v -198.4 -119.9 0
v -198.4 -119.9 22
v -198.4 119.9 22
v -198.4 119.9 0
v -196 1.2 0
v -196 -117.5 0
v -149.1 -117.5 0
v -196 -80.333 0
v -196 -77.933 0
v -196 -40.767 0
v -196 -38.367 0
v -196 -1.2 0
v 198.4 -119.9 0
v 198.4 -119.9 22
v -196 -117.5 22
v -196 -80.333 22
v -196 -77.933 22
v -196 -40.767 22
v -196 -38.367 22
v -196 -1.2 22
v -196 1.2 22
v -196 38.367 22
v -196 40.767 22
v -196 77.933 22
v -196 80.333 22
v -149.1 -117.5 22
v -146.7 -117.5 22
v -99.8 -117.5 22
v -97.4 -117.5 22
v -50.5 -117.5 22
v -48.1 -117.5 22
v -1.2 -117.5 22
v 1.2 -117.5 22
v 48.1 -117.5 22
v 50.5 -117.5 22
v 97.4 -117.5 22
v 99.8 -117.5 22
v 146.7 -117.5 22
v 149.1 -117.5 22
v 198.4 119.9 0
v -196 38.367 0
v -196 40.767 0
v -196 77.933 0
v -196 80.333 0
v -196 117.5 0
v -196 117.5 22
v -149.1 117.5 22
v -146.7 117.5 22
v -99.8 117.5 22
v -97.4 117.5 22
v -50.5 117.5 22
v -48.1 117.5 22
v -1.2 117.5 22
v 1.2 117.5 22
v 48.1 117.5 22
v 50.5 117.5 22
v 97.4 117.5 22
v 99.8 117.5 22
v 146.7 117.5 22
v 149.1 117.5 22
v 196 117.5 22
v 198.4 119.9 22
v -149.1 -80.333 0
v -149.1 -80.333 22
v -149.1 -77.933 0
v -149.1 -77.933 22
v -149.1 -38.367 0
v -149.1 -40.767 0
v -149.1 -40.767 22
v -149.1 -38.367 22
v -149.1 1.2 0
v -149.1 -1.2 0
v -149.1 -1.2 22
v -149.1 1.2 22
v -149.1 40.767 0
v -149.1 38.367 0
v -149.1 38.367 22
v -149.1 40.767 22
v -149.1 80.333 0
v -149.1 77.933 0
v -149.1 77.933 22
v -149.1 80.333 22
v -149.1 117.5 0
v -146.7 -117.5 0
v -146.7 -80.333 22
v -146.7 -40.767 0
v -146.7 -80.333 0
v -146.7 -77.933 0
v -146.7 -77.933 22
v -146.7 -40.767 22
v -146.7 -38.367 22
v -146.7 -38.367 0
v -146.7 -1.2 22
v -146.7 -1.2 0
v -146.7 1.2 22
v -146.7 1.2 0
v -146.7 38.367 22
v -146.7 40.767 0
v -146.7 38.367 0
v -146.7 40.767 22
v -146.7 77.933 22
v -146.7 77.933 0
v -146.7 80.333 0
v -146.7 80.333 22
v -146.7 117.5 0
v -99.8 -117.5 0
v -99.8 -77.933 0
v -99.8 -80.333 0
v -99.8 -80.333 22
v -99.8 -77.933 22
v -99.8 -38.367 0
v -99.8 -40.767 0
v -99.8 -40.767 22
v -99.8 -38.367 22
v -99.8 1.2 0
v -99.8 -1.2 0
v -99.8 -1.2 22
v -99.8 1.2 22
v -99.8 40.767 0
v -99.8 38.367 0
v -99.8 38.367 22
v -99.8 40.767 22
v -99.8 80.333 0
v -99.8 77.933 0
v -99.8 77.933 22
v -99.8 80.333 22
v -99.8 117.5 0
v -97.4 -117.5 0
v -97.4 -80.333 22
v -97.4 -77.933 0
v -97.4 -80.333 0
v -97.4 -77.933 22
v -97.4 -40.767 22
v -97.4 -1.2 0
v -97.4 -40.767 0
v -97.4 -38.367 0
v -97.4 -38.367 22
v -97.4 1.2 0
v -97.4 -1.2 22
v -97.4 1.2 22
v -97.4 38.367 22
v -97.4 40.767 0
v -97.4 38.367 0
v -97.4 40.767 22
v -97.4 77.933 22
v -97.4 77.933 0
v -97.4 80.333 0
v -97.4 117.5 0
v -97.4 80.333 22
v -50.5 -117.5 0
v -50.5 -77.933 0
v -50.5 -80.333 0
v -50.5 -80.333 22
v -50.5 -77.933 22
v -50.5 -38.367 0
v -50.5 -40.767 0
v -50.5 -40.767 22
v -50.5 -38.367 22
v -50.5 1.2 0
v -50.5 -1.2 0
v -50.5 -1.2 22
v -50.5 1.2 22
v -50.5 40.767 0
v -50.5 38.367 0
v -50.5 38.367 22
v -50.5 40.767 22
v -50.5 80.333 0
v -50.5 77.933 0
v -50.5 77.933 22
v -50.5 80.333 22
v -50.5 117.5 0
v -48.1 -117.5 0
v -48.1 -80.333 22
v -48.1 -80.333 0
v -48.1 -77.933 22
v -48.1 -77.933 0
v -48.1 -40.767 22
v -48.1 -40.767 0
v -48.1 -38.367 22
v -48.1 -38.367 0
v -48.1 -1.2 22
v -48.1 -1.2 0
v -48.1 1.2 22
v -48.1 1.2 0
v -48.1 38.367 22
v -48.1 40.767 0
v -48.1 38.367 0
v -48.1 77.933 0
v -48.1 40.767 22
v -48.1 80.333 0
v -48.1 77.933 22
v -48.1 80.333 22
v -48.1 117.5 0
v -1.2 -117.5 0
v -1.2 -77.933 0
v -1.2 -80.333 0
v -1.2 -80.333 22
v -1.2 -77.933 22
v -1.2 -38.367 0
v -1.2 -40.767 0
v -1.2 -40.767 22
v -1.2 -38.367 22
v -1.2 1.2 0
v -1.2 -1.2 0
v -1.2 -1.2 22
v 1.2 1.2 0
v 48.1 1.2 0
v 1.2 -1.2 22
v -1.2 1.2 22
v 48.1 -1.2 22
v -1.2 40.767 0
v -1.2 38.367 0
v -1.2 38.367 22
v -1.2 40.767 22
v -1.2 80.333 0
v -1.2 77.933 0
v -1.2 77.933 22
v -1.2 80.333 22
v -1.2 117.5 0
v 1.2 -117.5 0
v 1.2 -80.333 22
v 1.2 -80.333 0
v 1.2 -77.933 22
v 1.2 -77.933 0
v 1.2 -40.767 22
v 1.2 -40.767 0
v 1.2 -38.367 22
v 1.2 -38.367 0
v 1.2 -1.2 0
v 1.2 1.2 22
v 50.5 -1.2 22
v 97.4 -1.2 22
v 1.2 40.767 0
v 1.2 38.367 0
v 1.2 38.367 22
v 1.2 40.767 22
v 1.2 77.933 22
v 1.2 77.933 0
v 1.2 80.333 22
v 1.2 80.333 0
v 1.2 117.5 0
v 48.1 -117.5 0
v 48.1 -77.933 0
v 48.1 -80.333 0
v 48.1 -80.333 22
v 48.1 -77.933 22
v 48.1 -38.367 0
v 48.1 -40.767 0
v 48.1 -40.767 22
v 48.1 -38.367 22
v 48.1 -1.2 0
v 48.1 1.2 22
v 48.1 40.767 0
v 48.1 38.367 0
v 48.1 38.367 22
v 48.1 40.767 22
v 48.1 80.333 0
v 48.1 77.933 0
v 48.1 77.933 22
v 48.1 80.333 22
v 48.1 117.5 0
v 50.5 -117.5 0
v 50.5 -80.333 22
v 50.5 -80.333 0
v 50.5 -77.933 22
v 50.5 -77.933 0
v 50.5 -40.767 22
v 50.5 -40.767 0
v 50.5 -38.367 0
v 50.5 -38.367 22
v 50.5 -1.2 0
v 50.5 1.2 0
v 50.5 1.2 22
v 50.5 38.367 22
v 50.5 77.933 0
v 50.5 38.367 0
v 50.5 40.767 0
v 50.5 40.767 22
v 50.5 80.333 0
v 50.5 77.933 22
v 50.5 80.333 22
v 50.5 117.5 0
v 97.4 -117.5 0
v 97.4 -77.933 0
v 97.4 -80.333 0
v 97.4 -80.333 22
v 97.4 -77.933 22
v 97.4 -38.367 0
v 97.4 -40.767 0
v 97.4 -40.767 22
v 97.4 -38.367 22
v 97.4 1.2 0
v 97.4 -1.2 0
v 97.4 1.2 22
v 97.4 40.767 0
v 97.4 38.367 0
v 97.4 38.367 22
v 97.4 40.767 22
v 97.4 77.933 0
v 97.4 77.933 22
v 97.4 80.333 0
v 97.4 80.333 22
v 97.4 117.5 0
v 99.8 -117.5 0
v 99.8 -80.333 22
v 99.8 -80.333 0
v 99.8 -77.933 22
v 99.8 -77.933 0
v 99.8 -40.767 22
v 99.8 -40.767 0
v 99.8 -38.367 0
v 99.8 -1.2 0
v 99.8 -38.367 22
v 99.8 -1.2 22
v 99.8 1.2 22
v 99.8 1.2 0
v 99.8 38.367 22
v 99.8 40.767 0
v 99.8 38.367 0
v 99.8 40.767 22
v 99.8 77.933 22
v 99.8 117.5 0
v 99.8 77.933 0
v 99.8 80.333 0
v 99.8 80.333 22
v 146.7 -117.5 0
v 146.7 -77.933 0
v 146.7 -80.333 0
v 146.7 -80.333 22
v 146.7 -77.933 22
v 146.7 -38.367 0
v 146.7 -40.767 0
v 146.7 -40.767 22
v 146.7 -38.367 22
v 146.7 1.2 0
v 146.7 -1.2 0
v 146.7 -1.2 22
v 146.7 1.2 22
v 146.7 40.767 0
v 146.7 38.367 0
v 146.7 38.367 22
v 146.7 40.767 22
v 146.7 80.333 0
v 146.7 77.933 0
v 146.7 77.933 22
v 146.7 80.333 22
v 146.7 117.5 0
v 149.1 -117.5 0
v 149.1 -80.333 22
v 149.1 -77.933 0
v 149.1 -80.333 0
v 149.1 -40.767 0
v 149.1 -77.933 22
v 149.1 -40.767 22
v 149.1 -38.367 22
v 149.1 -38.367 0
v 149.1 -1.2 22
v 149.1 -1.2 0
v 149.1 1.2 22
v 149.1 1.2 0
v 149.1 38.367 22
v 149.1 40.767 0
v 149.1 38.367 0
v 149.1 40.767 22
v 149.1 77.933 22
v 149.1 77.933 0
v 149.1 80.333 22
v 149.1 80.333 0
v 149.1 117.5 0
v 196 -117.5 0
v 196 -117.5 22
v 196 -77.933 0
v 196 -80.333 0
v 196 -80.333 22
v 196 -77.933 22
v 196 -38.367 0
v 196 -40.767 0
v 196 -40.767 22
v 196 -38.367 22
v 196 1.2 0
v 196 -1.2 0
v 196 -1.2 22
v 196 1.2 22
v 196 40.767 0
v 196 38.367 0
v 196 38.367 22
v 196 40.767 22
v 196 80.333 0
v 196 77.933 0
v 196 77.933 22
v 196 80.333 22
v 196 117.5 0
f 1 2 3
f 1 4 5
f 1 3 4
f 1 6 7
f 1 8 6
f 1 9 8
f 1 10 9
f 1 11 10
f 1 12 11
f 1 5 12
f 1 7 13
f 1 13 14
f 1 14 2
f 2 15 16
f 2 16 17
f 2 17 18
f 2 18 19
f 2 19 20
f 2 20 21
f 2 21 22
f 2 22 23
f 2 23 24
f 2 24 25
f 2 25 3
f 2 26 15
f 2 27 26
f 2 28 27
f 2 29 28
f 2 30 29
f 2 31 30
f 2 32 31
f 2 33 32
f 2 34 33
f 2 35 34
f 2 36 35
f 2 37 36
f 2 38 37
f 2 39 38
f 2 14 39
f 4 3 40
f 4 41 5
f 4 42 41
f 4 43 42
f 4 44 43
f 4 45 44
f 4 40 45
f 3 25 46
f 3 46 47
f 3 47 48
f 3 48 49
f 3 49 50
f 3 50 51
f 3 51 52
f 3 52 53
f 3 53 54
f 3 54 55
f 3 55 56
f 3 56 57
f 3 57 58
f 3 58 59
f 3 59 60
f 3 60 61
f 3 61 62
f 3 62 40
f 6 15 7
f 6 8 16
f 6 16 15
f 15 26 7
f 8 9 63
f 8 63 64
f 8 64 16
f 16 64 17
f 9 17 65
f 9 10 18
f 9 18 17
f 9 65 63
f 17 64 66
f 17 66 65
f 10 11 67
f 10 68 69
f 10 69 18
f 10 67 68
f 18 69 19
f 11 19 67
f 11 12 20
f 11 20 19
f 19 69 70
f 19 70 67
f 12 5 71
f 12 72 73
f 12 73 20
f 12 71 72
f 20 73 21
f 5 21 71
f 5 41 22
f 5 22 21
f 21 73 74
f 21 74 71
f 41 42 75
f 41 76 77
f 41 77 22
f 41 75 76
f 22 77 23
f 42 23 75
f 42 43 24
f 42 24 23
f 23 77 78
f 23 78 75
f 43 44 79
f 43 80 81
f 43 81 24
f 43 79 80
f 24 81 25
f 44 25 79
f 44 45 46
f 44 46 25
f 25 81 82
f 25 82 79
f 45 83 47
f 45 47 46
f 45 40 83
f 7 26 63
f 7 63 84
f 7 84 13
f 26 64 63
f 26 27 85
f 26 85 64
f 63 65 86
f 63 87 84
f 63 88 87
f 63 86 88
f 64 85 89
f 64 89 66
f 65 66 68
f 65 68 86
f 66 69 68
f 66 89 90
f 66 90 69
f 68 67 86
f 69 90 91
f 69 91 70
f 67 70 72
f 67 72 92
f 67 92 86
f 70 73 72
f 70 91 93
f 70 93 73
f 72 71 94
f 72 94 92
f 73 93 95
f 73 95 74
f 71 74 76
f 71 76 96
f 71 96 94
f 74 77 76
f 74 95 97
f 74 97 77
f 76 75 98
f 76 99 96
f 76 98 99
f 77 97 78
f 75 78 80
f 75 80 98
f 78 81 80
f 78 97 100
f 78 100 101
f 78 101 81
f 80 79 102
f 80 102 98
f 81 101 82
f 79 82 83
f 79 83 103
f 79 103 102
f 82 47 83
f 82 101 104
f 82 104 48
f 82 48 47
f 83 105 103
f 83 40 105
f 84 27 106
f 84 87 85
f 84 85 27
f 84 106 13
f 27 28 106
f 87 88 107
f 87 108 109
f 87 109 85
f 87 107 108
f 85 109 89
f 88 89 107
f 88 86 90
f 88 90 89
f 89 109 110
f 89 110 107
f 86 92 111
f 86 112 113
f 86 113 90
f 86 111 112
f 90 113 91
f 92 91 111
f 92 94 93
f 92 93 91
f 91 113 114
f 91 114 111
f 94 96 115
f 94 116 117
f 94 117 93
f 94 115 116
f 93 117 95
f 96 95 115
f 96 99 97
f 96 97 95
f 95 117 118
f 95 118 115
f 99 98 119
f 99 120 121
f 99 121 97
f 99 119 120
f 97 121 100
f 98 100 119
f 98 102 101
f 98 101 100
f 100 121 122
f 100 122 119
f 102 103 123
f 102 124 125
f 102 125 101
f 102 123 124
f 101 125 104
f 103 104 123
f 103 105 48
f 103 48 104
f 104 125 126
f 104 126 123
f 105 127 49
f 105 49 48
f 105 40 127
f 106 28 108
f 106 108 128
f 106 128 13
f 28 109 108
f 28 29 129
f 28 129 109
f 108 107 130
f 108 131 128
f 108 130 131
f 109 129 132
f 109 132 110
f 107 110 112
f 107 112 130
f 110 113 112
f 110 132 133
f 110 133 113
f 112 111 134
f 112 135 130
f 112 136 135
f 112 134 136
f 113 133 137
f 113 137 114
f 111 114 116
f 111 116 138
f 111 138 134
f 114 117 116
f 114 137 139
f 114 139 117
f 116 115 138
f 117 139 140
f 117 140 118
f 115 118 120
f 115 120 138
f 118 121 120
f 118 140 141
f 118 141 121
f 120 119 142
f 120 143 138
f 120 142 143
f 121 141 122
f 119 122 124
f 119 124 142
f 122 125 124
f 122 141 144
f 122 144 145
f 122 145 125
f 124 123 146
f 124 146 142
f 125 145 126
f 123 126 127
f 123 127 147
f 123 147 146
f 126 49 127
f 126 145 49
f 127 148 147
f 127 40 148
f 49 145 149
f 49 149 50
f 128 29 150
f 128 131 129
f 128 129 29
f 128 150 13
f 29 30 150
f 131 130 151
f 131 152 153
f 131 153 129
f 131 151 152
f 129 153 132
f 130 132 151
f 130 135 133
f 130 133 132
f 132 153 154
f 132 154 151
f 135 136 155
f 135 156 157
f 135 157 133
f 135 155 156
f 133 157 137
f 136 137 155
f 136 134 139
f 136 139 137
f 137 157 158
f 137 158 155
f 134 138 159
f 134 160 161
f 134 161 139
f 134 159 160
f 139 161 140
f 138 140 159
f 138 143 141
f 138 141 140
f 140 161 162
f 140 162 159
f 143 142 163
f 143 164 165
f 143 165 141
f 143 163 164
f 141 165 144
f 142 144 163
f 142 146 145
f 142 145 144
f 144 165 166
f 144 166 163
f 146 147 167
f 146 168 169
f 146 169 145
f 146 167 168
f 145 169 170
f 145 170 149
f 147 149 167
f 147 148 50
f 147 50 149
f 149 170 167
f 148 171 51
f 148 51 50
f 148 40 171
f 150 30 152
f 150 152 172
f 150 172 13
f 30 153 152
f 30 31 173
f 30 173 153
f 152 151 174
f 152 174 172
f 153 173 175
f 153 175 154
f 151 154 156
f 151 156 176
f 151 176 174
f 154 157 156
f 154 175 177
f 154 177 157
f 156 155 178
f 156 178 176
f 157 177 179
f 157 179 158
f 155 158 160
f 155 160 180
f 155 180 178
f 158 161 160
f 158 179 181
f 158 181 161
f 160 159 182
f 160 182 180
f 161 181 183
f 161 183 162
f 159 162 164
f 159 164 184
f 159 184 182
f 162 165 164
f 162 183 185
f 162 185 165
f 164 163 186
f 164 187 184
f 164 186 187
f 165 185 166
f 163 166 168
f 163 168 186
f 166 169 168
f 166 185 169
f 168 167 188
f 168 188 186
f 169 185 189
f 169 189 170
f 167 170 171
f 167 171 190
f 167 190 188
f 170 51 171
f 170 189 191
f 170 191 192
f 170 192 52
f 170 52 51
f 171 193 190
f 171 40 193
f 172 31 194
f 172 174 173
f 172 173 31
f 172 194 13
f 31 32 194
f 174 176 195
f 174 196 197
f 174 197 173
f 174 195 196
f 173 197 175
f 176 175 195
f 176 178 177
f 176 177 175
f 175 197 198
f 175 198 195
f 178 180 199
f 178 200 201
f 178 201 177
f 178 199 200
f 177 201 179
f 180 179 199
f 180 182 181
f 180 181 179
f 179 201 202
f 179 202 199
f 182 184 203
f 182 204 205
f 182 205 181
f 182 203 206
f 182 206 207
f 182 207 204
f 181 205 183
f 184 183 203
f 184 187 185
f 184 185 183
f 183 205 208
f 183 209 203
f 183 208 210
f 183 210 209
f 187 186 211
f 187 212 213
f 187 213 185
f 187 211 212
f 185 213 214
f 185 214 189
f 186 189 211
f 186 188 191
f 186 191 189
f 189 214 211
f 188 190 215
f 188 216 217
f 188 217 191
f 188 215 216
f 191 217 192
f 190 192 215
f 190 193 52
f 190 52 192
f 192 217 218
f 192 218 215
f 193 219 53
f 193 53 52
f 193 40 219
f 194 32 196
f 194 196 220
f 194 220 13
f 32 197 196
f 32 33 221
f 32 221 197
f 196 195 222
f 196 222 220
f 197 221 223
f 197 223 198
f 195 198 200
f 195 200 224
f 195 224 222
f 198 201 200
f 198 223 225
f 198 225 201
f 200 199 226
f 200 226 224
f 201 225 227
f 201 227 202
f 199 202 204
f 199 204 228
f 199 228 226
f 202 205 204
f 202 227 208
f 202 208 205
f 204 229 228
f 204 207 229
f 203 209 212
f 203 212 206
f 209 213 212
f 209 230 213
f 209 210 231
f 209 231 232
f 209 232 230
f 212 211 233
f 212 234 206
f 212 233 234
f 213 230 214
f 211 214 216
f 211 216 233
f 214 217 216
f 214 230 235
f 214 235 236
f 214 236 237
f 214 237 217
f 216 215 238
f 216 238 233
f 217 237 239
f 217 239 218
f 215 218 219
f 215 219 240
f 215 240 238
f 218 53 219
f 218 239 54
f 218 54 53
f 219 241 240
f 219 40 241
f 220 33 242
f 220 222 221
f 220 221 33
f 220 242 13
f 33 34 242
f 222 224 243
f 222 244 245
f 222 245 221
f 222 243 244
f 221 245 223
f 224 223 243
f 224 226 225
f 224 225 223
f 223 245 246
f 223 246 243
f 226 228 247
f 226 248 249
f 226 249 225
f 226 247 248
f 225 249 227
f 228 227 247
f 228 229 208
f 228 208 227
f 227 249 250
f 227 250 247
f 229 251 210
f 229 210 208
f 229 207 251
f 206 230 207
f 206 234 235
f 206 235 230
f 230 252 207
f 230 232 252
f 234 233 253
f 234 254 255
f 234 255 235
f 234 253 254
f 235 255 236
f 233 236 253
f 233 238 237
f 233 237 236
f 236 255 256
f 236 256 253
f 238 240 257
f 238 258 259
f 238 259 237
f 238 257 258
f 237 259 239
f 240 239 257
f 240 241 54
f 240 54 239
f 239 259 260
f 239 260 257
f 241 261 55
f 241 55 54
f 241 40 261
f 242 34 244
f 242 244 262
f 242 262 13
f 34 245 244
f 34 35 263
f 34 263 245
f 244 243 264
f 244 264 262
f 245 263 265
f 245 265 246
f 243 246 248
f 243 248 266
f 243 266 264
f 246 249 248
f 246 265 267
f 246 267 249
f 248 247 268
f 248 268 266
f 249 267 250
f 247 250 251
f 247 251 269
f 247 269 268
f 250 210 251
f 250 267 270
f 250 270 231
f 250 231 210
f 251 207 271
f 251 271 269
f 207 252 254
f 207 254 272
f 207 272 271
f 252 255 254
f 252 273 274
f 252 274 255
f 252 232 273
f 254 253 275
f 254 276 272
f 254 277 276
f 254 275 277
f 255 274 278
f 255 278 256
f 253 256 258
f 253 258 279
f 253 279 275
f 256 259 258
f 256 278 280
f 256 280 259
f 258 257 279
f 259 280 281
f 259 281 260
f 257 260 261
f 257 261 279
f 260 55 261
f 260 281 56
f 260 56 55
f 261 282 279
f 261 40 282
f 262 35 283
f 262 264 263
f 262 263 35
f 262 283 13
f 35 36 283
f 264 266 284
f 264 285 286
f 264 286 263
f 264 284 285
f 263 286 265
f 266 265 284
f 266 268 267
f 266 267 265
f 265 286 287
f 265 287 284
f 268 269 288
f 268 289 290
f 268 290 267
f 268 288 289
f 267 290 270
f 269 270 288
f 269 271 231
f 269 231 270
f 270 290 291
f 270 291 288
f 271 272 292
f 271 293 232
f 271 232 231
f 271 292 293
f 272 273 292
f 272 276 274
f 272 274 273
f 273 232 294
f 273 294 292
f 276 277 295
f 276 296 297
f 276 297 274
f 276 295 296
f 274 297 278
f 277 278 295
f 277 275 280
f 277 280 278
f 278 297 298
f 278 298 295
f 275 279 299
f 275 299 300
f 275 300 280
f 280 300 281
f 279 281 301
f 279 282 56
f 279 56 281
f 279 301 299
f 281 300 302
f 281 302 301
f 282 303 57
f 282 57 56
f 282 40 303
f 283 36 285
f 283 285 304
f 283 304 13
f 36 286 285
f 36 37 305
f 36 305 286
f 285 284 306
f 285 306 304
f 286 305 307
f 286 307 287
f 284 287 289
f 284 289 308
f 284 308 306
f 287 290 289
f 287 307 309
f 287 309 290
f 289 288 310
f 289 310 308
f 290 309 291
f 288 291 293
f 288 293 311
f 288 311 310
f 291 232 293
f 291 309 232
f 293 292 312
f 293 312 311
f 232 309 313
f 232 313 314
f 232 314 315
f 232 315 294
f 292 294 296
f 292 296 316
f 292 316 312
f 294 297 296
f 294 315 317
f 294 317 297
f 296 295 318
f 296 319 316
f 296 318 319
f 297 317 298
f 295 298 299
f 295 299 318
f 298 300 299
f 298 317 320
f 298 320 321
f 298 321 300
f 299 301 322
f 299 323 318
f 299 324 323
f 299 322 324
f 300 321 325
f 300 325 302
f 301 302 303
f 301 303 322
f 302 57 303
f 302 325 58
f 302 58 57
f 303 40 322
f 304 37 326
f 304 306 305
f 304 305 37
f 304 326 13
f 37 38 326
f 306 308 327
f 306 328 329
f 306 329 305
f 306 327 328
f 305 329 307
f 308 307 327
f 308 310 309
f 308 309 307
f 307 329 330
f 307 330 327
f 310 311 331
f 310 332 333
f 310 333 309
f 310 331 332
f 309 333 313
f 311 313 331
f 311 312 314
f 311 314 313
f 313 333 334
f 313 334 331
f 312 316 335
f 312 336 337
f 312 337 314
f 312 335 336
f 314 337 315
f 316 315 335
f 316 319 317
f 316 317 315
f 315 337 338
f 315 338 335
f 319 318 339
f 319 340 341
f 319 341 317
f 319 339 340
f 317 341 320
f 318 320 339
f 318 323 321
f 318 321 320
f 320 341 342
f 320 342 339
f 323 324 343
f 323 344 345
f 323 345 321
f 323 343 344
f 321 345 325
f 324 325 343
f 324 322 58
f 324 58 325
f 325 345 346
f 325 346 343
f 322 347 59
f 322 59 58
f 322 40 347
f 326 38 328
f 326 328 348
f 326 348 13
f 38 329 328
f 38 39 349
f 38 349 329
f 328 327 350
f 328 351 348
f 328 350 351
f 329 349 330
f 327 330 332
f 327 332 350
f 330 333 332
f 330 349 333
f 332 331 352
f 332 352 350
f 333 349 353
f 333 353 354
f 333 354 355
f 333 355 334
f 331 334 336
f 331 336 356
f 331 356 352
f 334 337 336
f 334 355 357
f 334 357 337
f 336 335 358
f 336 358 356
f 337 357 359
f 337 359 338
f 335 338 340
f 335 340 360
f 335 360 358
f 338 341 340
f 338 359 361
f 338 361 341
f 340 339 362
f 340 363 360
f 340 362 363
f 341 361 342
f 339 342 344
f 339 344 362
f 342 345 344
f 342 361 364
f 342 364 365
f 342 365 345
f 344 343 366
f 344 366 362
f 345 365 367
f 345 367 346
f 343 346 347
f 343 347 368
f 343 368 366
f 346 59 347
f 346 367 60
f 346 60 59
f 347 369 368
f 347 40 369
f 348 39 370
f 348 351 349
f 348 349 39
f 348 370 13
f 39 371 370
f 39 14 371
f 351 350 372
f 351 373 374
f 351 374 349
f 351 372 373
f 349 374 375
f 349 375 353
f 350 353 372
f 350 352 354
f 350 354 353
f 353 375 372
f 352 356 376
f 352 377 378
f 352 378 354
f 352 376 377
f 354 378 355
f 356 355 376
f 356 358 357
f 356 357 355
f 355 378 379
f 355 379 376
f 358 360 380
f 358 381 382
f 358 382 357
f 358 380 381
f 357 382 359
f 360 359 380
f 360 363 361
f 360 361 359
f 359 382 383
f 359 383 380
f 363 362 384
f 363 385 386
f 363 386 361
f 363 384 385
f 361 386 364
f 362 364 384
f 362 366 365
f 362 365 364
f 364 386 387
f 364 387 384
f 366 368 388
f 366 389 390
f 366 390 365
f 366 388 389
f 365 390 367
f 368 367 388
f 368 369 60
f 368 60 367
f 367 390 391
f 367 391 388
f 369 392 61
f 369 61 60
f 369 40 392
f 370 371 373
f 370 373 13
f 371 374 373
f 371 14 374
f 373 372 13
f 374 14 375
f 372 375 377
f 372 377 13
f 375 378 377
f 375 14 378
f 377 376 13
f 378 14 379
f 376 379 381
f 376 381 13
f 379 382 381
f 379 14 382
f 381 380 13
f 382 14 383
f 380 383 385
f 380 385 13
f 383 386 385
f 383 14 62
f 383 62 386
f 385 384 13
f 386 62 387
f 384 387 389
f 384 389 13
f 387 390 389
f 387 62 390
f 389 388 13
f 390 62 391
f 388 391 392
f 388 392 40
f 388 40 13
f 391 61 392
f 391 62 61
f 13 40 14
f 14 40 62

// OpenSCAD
// Start: lazy_union
default_5_default_5();
// End: lazy_union

// Modules.

// 'PartMaterial undef-default - default 5.0'
module default_5_default_5() {
  // 'None : _combine_solids_and_holes'
  union() {
    // '_combine_solids_and_holes'
    difference() {
      // 'insert : _combine_solids_and_holes'
      union() {
        // 'box'
        multmatrix(m=[[1.0, 0.0, 0.0, -198.4], [0.0, 1.0, 0.0, -119.9], [0.0, 0.0, 1.0, 0.0], [0.0, 0.0, 0.0, 1.0]]) {
          // 'box : _combine_solids_and_holes'
          union() {
            // 'box'
            cube(size=[396.8, 239.8, 22.0]);
          }
        }
      }
      // 'insert'
      multmatrix(m=[[1.0, 0.0, 0.0, -196.0], [0.0, 1.0, 0.0, 80.33333333333334], [0.0, 0.0, 1.0, -0.01], [0.0, 0.0, 0.0, 1.0]]) {
        // "('hole', 0, 0) : _combine_solids_and_holes"
        union() {
          // ('hole', 0, 0)
          cube(size=[46.9, 37.166666666666664, 22.020000000000003]);
        }
      }
      // 'insert'
      multmatrix(m=[[1.0, 0.0, 0.0, -196.0], [0.0, 1.0, 0.0, 40.76666666666667], [0.0, 0.0, 1.0, -0.01], [0.0, 0.0, 0.0, 1.0]]) {
        // "('hole', 0, 1) : _combine_solids_and_holes"
        union() {
          // ('hole', 0, 1)
          cube(size=[46.9, 37.166666666666664, 22.020000000000003]);
        }
      }
      // 'insert'
      multmatrix(m=[[1.0, 0.0, 0.0, -196.0], [0.0, 1.0, 0.0, 1.20000000000001], [0.0, 0.0, 1.0, -0.01], [0.0, 0.0, 0.0, 1.0]]) {
        // "('hole', 0, 2) : _combine_solids_and_holes"
        union() {
          // ('hole', 0, 2)
          cube(size=[46.9, 37.166666666666664, 22.020000000000003]);
        }
      }
      // 'insert'
      multmatrix(m=[[1.0, 0.0, 0.0, -196.0], [0.0, 1.0, 0.0, -38.36666666666665], [0.0, 0.0, 1.0, -0.01], [0.0, 0.0, 0.0, 1.0]]) {
        // "('hole', 0, 3) : _combine_solids_and_holes"
        union() {
          // ('hole', 0, 3)
          cube(size=[46.9, 37.166666666666664, 22.020000000000003]);
        }
      }
      // 'insert'
      multmatrix(m=[[1.0, 0.0, 0.0, -196.0], [0.0, 1.0, 0.0, -77.93333333333331], [0.0, 0.0, 1.0, -0.01], [0.0, 0.0, 0.0, 1.0]]) {
        // "('hole', 0, 4) : _combine_solids_and_holes"
        union() {
          // ('hole', 0, 4)
          cube(size=[46.9, 37.166666666666664, 22.020000000000003]);
        }
      }
      // 'insert'
      multmatrix(m=[[1.0, 0.0, 0.0, -196.0], [0.0, 1.0, 0.0, -117.49999999999997], [0.0, 0.0, 1.0, -0.01], [0.0, 0.0, 0.0, 1.0]]) {
        // "('hole', 0, 5) : _combine_solids_and_holes"
        union() {
          // ('hole', 0, 5)
          cube(size=[46.9, 37.166666666666664, 22.020000000000003]);
        }
      }
      // 'insert'
      multmatrix(m=[[1.0, 0.0, 0.0, -146.70000000000002], [0.0, 1.0, 0.0, 80.33333333333334], [0.0, 0.0, 1.0, -0.01], [0.0, 0.0, 0.0, 1.0]]) {
        // "('hole', 1, 0) : _combine_solids_and_holes"
        union() {
          // ('hole', 1, 0)
          cube(size=[46.9, 37.166666666666664, 22.020000000000003]);
        }
      }
      // 'insert'
      multmatrix(m=[[1.0, 0.0, 0.0, -146.70000000000002], [0.0, 1.0, 0.0, 40.76666666666667], [0.0, 0.0, 1.0, -0.01], [0.0, 0.0, 0.0, 1.0]]) {
        // "('hole', 1, 1) : _combine_solids_and_holes"
        union() {
          // ('hole', 1, 1)
          cube(size=[46.9, 37.166666666666664, 22.020000000000003]);
        }
      }
      // 'insert'
      multmatrix(m=[[1.0, 0.0, 0.0, -146.70000000000002], [0.0, 1.0, 0.0, 1.20000000000001], [0.0, 0.0, 1.0, -0.01], [0.0, 0.0, 0.0, 1.0]]) {
        // "('hole', 1, 2) : _combine_solids_and_holes"
        union() {
          // ('hole', 1, 2)
          cube(size=[46.9, 37.166666666666664, 22.020000000000003]);
        }
      }
      // 'insert'
      multmatrix(m=[[1.0, 0.0, 0.0, -146.70000000000002], [0.0, 1.0, 0.0, -38.36666666666665], [0.0, 0.0, 1.0, -0.01], [0.0, 0.0, 0.0, 1.0]]) {
        // "('hole', 1, 3) : _combine_solids_and_holes"
        union() {
          // ('hole', 1, 3)
          cube(size=[46.9, 37.166666666666664, 22.020000000000003]);
        }
      }
      // 'insert'
      multmatrix(m=[[1.0, 0.0, 0.0, -146.70000000000002], [0.0, 1.0, 0.0, -77.93333333333331], [0.0, 0.0, 1.0, -0.01], [0.0, 0.0, 0.0, 1.0]]) {
        // "('hole', 1, 4) : _combine_solids_and_holes"
        union() {
          // ('hole', 1, 4)
          cube(size=[46.9, 37.166666666666664, 22.020000000000003]);
        }
      }
      // 'insert'
      multmatrix(m=[[1.0, 0.0, 0.0, -146.70000000000002], [0.0, 1.0, 0.0, -117.49999999999997], [0.0, 0.0, 1.0, -0.01], [0.0, 0.0, 0.0, 1.0]]) {
        // "('hole', 1, 5) : _combine_solids_and_holes"
        union() {
          // ('hole', 1, 5)
          cube(size=[46.9, 37.166666666666664, 22.020000000000003]);
        }
      }
      // 'insert'
      multmatrix(m=[[1.0, 0.0, 0.0, -97.4], [0.0, 1.0, 0.0, 80.33333333333334], [0.0, 0.0, 1.0, -0.01], [0.0, 0.0, 0.0, 1.0]]) {
        // "('hole', 2, 0) : _combine_solids_and_holes"
        union() {
          // ('hole', 2, 0)
          cube(size=[46.9, 37.166666666666664, 22.020000000000003]);
        }
      }
      // 'insert'
      multmatrix(m=[[1.0, 0.0, 0.0, -97.4], [0.0, 1.0, 0.0, 40.76666666666667], [0.0, 0.0, 1.0, -0.01], [0.0, 0.0, 0.0, 1.0]]) {
        // "('hole', 2, 1) : _combine_solids_and_holes"
        union() {
          // ('hole', 2, 1)
          cube(size=[46.9, 37.166666666666664, 22.020000000000003]);
        }
      }
      // 'insert'
      multmatrix(m=[[1.0, 0.0, 0.0, -97.4], [0.0, 1.0, 0.0, 1.20000000000001], [0.0, 0.0, 1.0, -0.01], [0.0, 0.0, 0.0, 1.0]]) {
        // "('hole', 2, 2) : _combine_solids_and_holes"
        union() {
          // ('hole', 2, 2)
          cube(size=[46.9, 37.166666666666664, 22.020000000000003]);
        }
      }
      // 'insert'
      multmatrix(m=[[1.0, 0.0, 0.0, -97.4], [0.0, 1.0, 0.0, -38.36666666666665], [0.0, 0.0, 1.0, -0.01], [0.0, 0.0, 0.0, 1.0]]) {
        // "('hole', 2, 3) : _combine_solids_and_holes"
        union() {
          // ('hole', 2, 3)
          cube(size=[46.9, 37.166666666666664, 22.020000000000003]);
        }
      }
      // 'insert'
      multmatrix(m=[[1.0, 0.0, 0.0, -97.4], [0.0, 1.0, 0.0, -77.93333333333331], [0.0, 0.0, 1.0, -0.01], [0.0, 0.0, 0.0, 1.0]]) {
        // "('hole', 2, 4) : _combine_solids_and_holes"
        union() {
          // ('hole', 2, 4)
          cube(size=[46.9, 37.166666666666664, 22.020000000000003]);
        }
      }
      // 'insert'
      multmatrix(m=[[1.0, 0.0, 0.0, -97.4], [0.0, 1.0, 0.0, -117.49999999999997], [0.0, 0.0, 1.0, -0.01], [0.0, 0.0, 0.0, 1.0]]) {
        // "('hole', 2, 5) : _combine_solids_and_holes"
        union() {
          // ('hole', 2, 5)
          cube(size=[46.9, 37.166666666666664, 22.020000000000003]);
        }
      }
      // 'insert'
      multmatrix(m=[[1.0, 0.0, 0.0, -48.099999999999994], [0.0, 1.0, 0.0, 80.33333333333334], [0.0, 0.0, 1.0, -0.01], [0.0, 0.0, 0.0, 1.0]]) {
        // "('hole', 3, 0) : _combine_solids_and_holes"
        union() {
          // ('hole', 3, 0)
          cube(size=[46.9, 37.166666666666664, 22.020000000000003]);
        }
      }
      // 'insert'
      multmatrix(m=[[1.0, 0.0, 0.0, -48.099999999999994], [0.0, 1.0, 0.0, 40.76666666666667], [0.0, 0.0, 1.0, -0.01], [0.0, 0.0, 0.0, 1.0]]) {
        // "('hole', 3, 1) : _combine_solids_and_holes"
        union() {
          // ('hole', 3, 1)
          cube(size=[46.9, 37.166666666666664, 22.020000000000003]);
        }
      }
      // 'insert'
      multmatrix(m=[[1.0, 0.0, 0.0, -48.099999999999994], [0.0, 1.0, 0.0, 1.20000000000001], [0.0, 0.0, 1.0, -0.01], [0.0, 0.0, 0.0, 1.0]]) {
        // "('hole', 3, 2) : _combine_solids_and_holes"
        union() {
          // ('hole', 3, 2)
          cube(size=[46.9, 37.166666666666664, 22.020000000000003]);
        }
      }
      // 'insert'
      multmatrix(m=[[1.0, 0.0, 0.0, -48.099999999999994], [0.0, 1.0, 0.0, -38.36666666666665], [0.0, 0.0, 1.0, -0.01], [0.0, 0.0, 0.0, 1.0]]) {
        // "('hole', 3, 3) : _combine_solids_and_holes"
        union() {
          // ('hole', 3, 3)
          cube(size=[46.9, 37.166666666666664, 22.020000000000003]);
        }
      }
      // 'insert'
      multmatrix(m=[[1.0, 0.0, 0.0, -48.099999999999994], [0.0, 1.0, 0.0, -77.93333333333331], [0.0, 0.0, 1.0, -0.01], [0.0, 0.0, 0.0, 1.0]]) {
        // "('hole', 3, 4) : _combine_solids_and_holes"
        union() {
          // ('hole', 3, 4)
          cube(size=[46.9, 37.166666666666664, 22.020000000000003]);
        }
      }
      // 'insert'
      multmatrix(m=[[1.0, 0.0, 0.0, -48.099999999999994], [0.0, 1.0, 0.0, -117.49999999999997], [0.0, 0.0, 1.0, -0.01], [0.0, 0.0, 0.0, 1.0]]) {
        // "('hole', 3, 5) : _combine_solids_and_holes"
        union() {
          // ('hole', 3, 5)
          cube(size=[46.9, 37.166666666666664, 22.020000000000003]);
        }
      }
      // 'insert'
      multmatrix(m=[[1.0, 0.0, 0.0, 1.200000000000017], [0.0, 1.0, 0.0, 80.33333333333334], [0.0, 0.0, 1.0, -0.01], [0.0, 0.0, 0.0, 1.0]]) {
        // "('hole', 4, 0) : _combine_solids_and_holes"
        union() {
          // ('hole', 4, 0)
          cube(size=[46.9, 37.166666666666664, 22.020000000000003]);
        }
      }
      // 'insert'
      multmatrix(m=[[1.0, 0.0, 0.0, 1.200000000000017], [0.0, 1.0, 0.0, 40.76666666666667], [0.0, 0.0, 1.0, -0.01], [0.0, 0.0, 0.0, 1.0]]) {
        // "('hole', 4, 1) : _combine_solids_and_holes"
        union() {
          // ('hole', 4, 1)
          cube(size=[46.9, 37.166666666666664, 22.020000000000003]);
        }
      }
      // 'insert'
      multmatrix(m=[[1.0, 0.0, 0.0, 1.200000000000017], [0.0, 1.0, 0.0, 1.20000000000001], [0.0, 0.0, 1.0, -0.01], [0.0, 0.0, 0.0, 1.0]]) {
        // "('hole', 4, 2) : _combine_solids_and_holes"
        union() {
          // ('hole', 4, 2)
          cube(size=[46.9, 37.166666666666664, 22.020000000000003]);
        }
      }
      // 'insert'
      multmatrix(m=[[1.0, 0.0, 0.0, 1.200000000000017], [0.0, 1.0, 0.0, -38.36666666666665], [0.0, 0.0, 1.0, -0.01], [0.0, 0.0, 0.0, 1.0]]) {
        // "('hole', 4, 3) : _combine_solids_and_holes"
        union() {
          // ('hole', 4, 3)
          cube(size=[46.9, 37.166666666666664, 22.020000000000003]);
        }
      }
      // 'insert'
      multmatrix(m=[[1.0, 0.0, 0.0, 1.200000000000017], [0.0, 1.0, 0.0, -77.93333333333331], [0.0, 0.0, 1.0, -0.01], [0.0, 0.0, 0.0, 1.0]]) {
        // "('hole', 4, 4) : _combine_solids_and_holes"
        union() {
          // ('hole', 4, 4)
          cube(size=[46.9, 37.166666666666664, 22.020000000000003]);
        }
      }
      // 'insert'
      multmatrix(m=[[1.0, 0.0, 0.0, 1.200000000000017], [0.0, 1.0, 0.0, -117.49999999999997], [0.0, 0.0, 1.0, -0.01], [0.0, 0.0, 0.0, 1.0]]) {
        // "('hole', 4, 5) : _combine_solids_and_holes"
        union() {
          // ('hole', 4, 5)
          cube(size=[46.9, 37.166666666666664, 22.020000000000003]);
        }
      }
      // 'insert'
      multmatrix(m=[[1.0, 0.0, 0.0, 50.50000000000003], [0.0, 1.0, 0.0, 80.33333333333334], [0.0, 0.0, 1.0, -0.01], [0.0, 0.0, 0.0, 1.0]]) {
        // "('hole', 5, 0) : _combine_solids_and_holes"
        union() {
          // ('hole', 5, 0)
          cube(size=[46.9, 37.166666666666664, 22.020000000000003]);
        }
      }
      // 'insert'
      multmatrix(m=[[1.0, 0.0, 0.0, 50.50000000000003], [0.0, 1.0, 0.0, 40.76666666666667], [0.0, 0.0, 1.0, -0.01], [0.0, 0.0, 0.0, 1.0]]) {
        // "('hole', 5, 1) : _combine_solids_and_holes"
        union() {
          // ('hole', 5, 1)
          cube(size=[46.9, 37.166666666666664, 22.020000000000003]);
        }
      }
      // 'insert'
      multmatrix(m=[[1.0, 0.0, 0.0, 50.50000000000003], [0.0, 1.0, 0.0, 1.20000000000001], [0.0, 0.0, 1.0, -0.01], [0.0, 0.0, 0.0, 1.0]]) {
        // "('hole', 5, 2) : _combine_solids_and_holes"
        union() {
          // ('hole', 5, 2)
          cube(size=[46.9, 37.166666666666664, 22.020000000000003]);
        }
      }
      // 'insert'
      multmatrix(m=[[1.0, 0.0, 0.0, 50.50000000000003], [0.0, 1.0, 0.0, -38.36666666666665], [0.0, 0.0, 1.0, -0.01], [0.0, 0.0, 0.0, 1.0]]) {
        // "('hole', 5, 3) : _combine_solids_and_holes"
        union() {
          // ('hole', 5, 3)
          cube(size=[46.9, 37.166666666666664, 22.020000000000003]);
        }
      }
      // 'insert'
      multmatrix(m=[[1.0, 0.0, 0.0, 50.50000000000003], [0.0, 1.0, 0.0, -77.93333333333331], [0.0, 0.0, 1.0, -0.01], [0.0, 0.0, 0.0, 1.0]]) {
        // "('hole', 5, 4) : _combine_solids_and_holes"
        union() {
          // ('hole', 5, 4)
          cube(size=[46.9, 37.166666666666664, 22.020000000000003]);
        }
      }
      // 'insert'
      multmatrix(m=[[1.0, 0.0, 0.0, 50.50000000000003], [0.0, 1.0, 0.0, -117.49999999999997], [0.0, 0.0, 1.0, -0.01], [0.0, 0.0, 0.0, 1.0]]) {
        // "('hole', 5, 5) : _combine_solids_and_holes"
        union() {
          // ('hole', 5, 5)
          cube(size=[46.9, 37.166666666666664, 22.020000000000003]);
        }
      }
      // 'insert'
      multmatrix(m=[[1.0, 0.0, 0.0, 99.80000000000004], [0.0, 1.0, 0.0, 80.33333333333334], [0.0, 0.0, 1.0, -0.01], [0.0, 0.0, 0.0, 1.0]]) {
        // "('hole', 6, 0) : _combine_solids_and_holes"
        union() {
          // ('hole', 6, 0)
          cube(size=[46.9, 37.166666666666664, 22.020000000000003]);
        }
      }
      // 'insert'
      multmatrix(m=[[1.0, 0.0, 0.0, 99.80000000000004], [0.0, 1.0, 0.0, 40.76666666666667], [0.0, 0.0, 1.0, -0.01], [0.0, 0.0, 0.0, 1.0]]) {
        // "('hole', 6, 1) : _combine_solids_and_holes"
        union() {
          // ('hole', 6, 1)
          cube(size=[46.9, 37.166666666666664, 22.020000000000003]);
        }
      }
      // 'insert'
      multmatrix(m=[[1.0, 0.0, 0.0, 99.80000000000004], [0.0, 1.0, 0.0, 1.20000000000001], [0.0, 0.0, 1.0, -0.01], [0.0, 0.0, 0.0, 1.0]]) {
        // "('hole', 6, 2) : _combine_solids_and_holes"
        union() {
          // ('hole', 6, 2)
          cube(size=[46.9, 37.166666666666664, 22.020000000000003]);
        }
      }
      // 'insert'
      multmatrix(m=[[1.0, 0.0, 0.0, 99.80000000000004], [0.0, 1.0, 0.0, -38.36666666666665], [0.0, 0.0, 1.0, -0.01], [0.0, 0.0, 0.0, 1.0]]) {
        // "('hole', 6, 3) : _combine_solids_and_holes"
        union() {
          // ('hole', 6, 3)
          cube(size=[46.9, 37.166666666666664, 22.020000000000003]);
        }
      }
      // 'insert'
      multmatrix(m=[[1.0, 0.0, 0.0, 99.80000000000004], [0.0, 1.0, 0.0, -77.93333333333331], [0.0, 0.0, 1.0, -0.01], [0.0, 0.0, 0.0, 1.0]]) {
        // "('hole', 6, 4) : _combine_solids_and_holes"
        union() {
          // ('hole', 6, 4)
          cube(size=[46.9, 37.166666666666664, 22.020000000000003]);
        }
      }
      // 'insert'
      multmatrix(m=[[1.0, 0.0, 0.0, 99.80000000000004], [0.0, 1.0, 0.0, -117.49999999999997], [0.0, 0.0, 1.0, -0.01], [0.0, 0.0, 0.0, 1.0]]) {
        // "('hole', 6, 5) : _combine_solids_and_holes"
        union() {
          // ('hole', 6, 5)
          cube(size=[46.9, 37.166666666666664, 22.020000000000003]);
        }
      }
      // 'insert'
      multmatrix(m=[[1.0, 0.0, 0.0, 149.10000000000005], [0.0, 1.0, 0.0, 80.33333333333334], [0.0, 0.0, 1.0, -0.01], [0.0, 0.0, 0.0, 1.0]]) {
        // "('hole', 7, 0) : _combine_solids_and_holes"
        union() {
          // ('hole', 7, 0)
          cube(size=[46.9, 37.166666666666664, 22.020000000000003]);
        }
      }
      // 'insert'
      multmatrix(m=[[1.0, 0.0, 0.0, 149.10000000000005], [0.0, 1.0, 0.0, 40.76666666666667], [0.0, 0.0, 1.0, -0.01], [0.0, 0.0, 0.0, 1.0]]) {
        // "('hole', 7, 1) : _combine_solids_and_holes"
        union() {
          // ('hole', 7, 1)
          cube(size=[46.9, 37.166666666666664, 22.020000000000003]);
        }
      }
      // 'insert'
      multmatrix(m=[[1.0, 0.0, 0.0, 149.10000000000005], [0.0, 1.0, 0.0, 1.20000000000001], [0.0, 0.0, 1.0, -0.01], [0.0, 0.0, 0.0, 1.0]]) {
        // "('hole', 7, 2) : _combine_solids_and_holes"
        union() {
          // ('hole', 7, 2)
          cube(size=[46.9, 37.166666666666664, 22.020000000000003]);
        }
      }
      // 'insert'
      multmatrix(m=[[1.0, 0.0, 0.0, 149.10000000000005], [0.0, 1.0, 0.0, -38.36666666666665], [0.0, 0.0, 1.0, -0.01], [0.0, 0.0, 0.0, 1.0]]) {
        // "('hole', 7, 3) : _combine_solids_and_holes"
        union() {
          // ('hole', 7, 3)
          cube(size=[46.9, 37.166666666666664, 22.020000000000003]);
        }
      }
      // 'insert'
      multmatrix(m=[[1.0, 0.0, 0.0, 149.10000000000005], [0.0, 1.0, 0.0, -77.93333333333331], [0.0, 0.0, 1.0, -0.01], [0.0, 0.0, 0.0, 1.0]]) {
        // "('hole', 7, 4) : _combine_solids_and_holes"
        union() {
          // ('hole', 7, 4)
          cube(size=[46.9, 37.166666666666664, 22.020000000000003]);
        }
      }
      // 'insert'
      multmatrix(m=[[1.0, 0.0, 0.0, 149.10000000000005], [0.0, 1.0, 0.0, -117.49999999999997], [0.0, 0.0, 1.0, -0.01], [0.0, 0.0, 0.0, 1.0]]) {
        // "('hole', 7, 5) : _combine_solids_and_holes"
        union() {
          // ('hole', 7, 5)
          cube(size=[46.9, 37.166666666666664, 22.020000000000003]);
        }
      }
    }
  }
} // end module default_5_default_5
